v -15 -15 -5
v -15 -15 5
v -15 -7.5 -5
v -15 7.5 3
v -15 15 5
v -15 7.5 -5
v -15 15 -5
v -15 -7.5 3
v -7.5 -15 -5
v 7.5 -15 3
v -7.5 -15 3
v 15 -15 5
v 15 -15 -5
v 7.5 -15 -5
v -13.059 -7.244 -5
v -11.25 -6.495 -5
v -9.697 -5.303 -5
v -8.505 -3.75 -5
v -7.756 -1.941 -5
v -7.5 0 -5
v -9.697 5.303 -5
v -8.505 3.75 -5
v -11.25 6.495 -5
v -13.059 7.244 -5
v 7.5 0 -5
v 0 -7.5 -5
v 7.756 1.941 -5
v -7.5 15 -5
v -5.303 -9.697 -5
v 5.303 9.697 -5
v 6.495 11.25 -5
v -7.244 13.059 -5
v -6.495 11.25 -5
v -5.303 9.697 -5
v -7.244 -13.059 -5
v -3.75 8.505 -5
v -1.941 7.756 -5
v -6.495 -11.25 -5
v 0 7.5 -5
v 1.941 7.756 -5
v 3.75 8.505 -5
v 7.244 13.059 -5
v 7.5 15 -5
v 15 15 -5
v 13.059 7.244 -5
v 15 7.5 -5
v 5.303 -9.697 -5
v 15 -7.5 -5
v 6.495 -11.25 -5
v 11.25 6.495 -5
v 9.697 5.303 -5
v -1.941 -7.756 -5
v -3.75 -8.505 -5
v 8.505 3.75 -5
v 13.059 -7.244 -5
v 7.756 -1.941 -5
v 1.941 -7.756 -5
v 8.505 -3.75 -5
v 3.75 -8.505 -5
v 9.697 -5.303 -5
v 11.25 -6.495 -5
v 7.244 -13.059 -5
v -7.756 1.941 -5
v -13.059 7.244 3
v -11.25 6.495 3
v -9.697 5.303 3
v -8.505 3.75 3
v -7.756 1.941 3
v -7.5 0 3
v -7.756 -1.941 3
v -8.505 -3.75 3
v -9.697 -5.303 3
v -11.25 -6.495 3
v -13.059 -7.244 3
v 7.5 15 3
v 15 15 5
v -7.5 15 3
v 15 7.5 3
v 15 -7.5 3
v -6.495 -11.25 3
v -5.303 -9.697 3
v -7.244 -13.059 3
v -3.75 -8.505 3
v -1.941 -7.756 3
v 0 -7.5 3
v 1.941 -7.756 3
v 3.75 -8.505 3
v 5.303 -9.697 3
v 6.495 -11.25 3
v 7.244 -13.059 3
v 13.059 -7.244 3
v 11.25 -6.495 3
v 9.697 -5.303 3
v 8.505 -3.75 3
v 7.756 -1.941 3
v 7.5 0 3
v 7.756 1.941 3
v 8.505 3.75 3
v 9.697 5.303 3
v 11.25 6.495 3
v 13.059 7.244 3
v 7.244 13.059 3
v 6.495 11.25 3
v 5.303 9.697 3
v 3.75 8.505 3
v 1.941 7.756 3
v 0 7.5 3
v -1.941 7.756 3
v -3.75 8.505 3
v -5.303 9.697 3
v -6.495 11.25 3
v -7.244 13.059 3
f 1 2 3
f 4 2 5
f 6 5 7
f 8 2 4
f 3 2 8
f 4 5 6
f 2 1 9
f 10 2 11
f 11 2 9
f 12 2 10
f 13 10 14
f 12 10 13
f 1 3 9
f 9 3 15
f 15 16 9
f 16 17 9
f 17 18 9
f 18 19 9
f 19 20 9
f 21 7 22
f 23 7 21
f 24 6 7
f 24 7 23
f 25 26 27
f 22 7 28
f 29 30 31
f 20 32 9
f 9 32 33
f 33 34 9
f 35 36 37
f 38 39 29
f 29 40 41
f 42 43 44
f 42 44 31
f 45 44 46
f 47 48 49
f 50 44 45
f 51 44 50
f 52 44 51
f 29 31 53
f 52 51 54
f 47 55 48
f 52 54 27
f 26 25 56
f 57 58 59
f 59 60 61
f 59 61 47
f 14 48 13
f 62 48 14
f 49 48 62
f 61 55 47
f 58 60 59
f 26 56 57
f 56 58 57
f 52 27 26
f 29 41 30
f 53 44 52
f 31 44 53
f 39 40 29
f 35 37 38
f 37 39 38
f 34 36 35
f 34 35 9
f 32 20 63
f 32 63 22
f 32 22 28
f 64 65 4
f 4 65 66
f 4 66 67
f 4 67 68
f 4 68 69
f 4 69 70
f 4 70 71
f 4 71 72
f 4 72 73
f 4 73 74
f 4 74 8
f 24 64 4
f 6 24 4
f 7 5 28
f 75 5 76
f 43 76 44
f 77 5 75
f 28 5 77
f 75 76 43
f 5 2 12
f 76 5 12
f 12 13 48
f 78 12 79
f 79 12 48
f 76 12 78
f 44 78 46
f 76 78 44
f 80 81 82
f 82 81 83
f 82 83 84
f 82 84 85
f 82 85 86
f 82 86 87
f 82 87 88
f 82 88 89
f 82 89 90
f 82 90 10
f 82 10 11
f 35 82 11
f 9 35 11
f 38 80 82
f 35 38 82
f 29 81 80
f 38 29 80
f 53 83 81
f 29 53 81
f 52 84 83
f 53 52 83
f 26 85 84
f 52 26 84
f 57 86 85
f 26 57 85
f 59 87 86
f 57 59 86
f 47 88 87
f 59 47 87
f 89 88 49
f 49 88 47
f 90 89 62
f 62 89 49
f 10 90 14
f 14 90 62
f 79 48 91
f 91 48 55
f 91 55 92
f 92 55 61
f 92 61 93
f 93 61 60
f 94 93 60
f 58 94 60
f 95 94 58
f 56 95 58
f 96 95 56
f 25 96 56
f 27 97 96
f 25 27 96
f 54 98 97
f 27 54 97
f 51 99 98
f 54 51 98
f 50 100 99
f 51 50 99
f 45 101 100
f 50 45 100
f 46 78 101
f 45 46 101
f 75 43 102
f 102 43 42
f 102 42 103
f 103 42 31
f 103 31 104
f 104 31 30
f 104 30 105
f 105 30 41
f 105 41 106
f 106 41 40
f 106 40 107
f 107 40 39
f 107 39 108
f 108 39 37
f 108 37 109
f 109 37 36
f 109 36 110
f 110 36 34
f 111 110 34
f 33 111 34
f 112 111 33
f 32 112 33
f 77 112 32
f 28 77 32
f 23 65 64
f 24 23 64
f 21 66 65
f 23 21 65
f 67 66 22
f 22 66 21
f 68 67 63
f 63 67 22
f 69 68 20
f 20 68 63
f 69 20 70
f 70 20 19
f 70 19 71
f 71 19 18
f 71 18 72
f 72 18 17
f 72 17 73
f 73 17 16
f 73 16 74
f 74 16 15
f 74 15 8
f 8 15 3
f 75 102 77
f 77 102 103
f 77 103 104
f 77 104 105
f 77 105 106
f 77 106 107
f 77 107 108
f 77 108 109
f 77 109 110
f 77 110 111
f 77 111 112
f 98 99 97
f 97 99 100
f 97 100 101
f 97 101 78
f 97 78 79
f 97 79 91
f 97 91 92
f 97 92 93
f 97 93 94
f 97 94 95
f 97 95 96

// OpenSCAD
difference()
{
	cube([30, 30, 10], center=true);
	translate([0,-15,-2]) rotate([0, 0, 45]) cylinder(10, 7.5, 7.5, center=true);
	translate([0,15,-2]) rotate([0, 0, 45]) cylinder(10, 7.5, 7.5, center=true);
	translate([15,0,-2]) rotate([0, 0, 45]) cylinder(10, 7.5, 7.5, center=true);
	translate([-15,0,-2]) rotate([0, 0, 45]) cylinder(10, 7.5, 7.5, center=true);
}
